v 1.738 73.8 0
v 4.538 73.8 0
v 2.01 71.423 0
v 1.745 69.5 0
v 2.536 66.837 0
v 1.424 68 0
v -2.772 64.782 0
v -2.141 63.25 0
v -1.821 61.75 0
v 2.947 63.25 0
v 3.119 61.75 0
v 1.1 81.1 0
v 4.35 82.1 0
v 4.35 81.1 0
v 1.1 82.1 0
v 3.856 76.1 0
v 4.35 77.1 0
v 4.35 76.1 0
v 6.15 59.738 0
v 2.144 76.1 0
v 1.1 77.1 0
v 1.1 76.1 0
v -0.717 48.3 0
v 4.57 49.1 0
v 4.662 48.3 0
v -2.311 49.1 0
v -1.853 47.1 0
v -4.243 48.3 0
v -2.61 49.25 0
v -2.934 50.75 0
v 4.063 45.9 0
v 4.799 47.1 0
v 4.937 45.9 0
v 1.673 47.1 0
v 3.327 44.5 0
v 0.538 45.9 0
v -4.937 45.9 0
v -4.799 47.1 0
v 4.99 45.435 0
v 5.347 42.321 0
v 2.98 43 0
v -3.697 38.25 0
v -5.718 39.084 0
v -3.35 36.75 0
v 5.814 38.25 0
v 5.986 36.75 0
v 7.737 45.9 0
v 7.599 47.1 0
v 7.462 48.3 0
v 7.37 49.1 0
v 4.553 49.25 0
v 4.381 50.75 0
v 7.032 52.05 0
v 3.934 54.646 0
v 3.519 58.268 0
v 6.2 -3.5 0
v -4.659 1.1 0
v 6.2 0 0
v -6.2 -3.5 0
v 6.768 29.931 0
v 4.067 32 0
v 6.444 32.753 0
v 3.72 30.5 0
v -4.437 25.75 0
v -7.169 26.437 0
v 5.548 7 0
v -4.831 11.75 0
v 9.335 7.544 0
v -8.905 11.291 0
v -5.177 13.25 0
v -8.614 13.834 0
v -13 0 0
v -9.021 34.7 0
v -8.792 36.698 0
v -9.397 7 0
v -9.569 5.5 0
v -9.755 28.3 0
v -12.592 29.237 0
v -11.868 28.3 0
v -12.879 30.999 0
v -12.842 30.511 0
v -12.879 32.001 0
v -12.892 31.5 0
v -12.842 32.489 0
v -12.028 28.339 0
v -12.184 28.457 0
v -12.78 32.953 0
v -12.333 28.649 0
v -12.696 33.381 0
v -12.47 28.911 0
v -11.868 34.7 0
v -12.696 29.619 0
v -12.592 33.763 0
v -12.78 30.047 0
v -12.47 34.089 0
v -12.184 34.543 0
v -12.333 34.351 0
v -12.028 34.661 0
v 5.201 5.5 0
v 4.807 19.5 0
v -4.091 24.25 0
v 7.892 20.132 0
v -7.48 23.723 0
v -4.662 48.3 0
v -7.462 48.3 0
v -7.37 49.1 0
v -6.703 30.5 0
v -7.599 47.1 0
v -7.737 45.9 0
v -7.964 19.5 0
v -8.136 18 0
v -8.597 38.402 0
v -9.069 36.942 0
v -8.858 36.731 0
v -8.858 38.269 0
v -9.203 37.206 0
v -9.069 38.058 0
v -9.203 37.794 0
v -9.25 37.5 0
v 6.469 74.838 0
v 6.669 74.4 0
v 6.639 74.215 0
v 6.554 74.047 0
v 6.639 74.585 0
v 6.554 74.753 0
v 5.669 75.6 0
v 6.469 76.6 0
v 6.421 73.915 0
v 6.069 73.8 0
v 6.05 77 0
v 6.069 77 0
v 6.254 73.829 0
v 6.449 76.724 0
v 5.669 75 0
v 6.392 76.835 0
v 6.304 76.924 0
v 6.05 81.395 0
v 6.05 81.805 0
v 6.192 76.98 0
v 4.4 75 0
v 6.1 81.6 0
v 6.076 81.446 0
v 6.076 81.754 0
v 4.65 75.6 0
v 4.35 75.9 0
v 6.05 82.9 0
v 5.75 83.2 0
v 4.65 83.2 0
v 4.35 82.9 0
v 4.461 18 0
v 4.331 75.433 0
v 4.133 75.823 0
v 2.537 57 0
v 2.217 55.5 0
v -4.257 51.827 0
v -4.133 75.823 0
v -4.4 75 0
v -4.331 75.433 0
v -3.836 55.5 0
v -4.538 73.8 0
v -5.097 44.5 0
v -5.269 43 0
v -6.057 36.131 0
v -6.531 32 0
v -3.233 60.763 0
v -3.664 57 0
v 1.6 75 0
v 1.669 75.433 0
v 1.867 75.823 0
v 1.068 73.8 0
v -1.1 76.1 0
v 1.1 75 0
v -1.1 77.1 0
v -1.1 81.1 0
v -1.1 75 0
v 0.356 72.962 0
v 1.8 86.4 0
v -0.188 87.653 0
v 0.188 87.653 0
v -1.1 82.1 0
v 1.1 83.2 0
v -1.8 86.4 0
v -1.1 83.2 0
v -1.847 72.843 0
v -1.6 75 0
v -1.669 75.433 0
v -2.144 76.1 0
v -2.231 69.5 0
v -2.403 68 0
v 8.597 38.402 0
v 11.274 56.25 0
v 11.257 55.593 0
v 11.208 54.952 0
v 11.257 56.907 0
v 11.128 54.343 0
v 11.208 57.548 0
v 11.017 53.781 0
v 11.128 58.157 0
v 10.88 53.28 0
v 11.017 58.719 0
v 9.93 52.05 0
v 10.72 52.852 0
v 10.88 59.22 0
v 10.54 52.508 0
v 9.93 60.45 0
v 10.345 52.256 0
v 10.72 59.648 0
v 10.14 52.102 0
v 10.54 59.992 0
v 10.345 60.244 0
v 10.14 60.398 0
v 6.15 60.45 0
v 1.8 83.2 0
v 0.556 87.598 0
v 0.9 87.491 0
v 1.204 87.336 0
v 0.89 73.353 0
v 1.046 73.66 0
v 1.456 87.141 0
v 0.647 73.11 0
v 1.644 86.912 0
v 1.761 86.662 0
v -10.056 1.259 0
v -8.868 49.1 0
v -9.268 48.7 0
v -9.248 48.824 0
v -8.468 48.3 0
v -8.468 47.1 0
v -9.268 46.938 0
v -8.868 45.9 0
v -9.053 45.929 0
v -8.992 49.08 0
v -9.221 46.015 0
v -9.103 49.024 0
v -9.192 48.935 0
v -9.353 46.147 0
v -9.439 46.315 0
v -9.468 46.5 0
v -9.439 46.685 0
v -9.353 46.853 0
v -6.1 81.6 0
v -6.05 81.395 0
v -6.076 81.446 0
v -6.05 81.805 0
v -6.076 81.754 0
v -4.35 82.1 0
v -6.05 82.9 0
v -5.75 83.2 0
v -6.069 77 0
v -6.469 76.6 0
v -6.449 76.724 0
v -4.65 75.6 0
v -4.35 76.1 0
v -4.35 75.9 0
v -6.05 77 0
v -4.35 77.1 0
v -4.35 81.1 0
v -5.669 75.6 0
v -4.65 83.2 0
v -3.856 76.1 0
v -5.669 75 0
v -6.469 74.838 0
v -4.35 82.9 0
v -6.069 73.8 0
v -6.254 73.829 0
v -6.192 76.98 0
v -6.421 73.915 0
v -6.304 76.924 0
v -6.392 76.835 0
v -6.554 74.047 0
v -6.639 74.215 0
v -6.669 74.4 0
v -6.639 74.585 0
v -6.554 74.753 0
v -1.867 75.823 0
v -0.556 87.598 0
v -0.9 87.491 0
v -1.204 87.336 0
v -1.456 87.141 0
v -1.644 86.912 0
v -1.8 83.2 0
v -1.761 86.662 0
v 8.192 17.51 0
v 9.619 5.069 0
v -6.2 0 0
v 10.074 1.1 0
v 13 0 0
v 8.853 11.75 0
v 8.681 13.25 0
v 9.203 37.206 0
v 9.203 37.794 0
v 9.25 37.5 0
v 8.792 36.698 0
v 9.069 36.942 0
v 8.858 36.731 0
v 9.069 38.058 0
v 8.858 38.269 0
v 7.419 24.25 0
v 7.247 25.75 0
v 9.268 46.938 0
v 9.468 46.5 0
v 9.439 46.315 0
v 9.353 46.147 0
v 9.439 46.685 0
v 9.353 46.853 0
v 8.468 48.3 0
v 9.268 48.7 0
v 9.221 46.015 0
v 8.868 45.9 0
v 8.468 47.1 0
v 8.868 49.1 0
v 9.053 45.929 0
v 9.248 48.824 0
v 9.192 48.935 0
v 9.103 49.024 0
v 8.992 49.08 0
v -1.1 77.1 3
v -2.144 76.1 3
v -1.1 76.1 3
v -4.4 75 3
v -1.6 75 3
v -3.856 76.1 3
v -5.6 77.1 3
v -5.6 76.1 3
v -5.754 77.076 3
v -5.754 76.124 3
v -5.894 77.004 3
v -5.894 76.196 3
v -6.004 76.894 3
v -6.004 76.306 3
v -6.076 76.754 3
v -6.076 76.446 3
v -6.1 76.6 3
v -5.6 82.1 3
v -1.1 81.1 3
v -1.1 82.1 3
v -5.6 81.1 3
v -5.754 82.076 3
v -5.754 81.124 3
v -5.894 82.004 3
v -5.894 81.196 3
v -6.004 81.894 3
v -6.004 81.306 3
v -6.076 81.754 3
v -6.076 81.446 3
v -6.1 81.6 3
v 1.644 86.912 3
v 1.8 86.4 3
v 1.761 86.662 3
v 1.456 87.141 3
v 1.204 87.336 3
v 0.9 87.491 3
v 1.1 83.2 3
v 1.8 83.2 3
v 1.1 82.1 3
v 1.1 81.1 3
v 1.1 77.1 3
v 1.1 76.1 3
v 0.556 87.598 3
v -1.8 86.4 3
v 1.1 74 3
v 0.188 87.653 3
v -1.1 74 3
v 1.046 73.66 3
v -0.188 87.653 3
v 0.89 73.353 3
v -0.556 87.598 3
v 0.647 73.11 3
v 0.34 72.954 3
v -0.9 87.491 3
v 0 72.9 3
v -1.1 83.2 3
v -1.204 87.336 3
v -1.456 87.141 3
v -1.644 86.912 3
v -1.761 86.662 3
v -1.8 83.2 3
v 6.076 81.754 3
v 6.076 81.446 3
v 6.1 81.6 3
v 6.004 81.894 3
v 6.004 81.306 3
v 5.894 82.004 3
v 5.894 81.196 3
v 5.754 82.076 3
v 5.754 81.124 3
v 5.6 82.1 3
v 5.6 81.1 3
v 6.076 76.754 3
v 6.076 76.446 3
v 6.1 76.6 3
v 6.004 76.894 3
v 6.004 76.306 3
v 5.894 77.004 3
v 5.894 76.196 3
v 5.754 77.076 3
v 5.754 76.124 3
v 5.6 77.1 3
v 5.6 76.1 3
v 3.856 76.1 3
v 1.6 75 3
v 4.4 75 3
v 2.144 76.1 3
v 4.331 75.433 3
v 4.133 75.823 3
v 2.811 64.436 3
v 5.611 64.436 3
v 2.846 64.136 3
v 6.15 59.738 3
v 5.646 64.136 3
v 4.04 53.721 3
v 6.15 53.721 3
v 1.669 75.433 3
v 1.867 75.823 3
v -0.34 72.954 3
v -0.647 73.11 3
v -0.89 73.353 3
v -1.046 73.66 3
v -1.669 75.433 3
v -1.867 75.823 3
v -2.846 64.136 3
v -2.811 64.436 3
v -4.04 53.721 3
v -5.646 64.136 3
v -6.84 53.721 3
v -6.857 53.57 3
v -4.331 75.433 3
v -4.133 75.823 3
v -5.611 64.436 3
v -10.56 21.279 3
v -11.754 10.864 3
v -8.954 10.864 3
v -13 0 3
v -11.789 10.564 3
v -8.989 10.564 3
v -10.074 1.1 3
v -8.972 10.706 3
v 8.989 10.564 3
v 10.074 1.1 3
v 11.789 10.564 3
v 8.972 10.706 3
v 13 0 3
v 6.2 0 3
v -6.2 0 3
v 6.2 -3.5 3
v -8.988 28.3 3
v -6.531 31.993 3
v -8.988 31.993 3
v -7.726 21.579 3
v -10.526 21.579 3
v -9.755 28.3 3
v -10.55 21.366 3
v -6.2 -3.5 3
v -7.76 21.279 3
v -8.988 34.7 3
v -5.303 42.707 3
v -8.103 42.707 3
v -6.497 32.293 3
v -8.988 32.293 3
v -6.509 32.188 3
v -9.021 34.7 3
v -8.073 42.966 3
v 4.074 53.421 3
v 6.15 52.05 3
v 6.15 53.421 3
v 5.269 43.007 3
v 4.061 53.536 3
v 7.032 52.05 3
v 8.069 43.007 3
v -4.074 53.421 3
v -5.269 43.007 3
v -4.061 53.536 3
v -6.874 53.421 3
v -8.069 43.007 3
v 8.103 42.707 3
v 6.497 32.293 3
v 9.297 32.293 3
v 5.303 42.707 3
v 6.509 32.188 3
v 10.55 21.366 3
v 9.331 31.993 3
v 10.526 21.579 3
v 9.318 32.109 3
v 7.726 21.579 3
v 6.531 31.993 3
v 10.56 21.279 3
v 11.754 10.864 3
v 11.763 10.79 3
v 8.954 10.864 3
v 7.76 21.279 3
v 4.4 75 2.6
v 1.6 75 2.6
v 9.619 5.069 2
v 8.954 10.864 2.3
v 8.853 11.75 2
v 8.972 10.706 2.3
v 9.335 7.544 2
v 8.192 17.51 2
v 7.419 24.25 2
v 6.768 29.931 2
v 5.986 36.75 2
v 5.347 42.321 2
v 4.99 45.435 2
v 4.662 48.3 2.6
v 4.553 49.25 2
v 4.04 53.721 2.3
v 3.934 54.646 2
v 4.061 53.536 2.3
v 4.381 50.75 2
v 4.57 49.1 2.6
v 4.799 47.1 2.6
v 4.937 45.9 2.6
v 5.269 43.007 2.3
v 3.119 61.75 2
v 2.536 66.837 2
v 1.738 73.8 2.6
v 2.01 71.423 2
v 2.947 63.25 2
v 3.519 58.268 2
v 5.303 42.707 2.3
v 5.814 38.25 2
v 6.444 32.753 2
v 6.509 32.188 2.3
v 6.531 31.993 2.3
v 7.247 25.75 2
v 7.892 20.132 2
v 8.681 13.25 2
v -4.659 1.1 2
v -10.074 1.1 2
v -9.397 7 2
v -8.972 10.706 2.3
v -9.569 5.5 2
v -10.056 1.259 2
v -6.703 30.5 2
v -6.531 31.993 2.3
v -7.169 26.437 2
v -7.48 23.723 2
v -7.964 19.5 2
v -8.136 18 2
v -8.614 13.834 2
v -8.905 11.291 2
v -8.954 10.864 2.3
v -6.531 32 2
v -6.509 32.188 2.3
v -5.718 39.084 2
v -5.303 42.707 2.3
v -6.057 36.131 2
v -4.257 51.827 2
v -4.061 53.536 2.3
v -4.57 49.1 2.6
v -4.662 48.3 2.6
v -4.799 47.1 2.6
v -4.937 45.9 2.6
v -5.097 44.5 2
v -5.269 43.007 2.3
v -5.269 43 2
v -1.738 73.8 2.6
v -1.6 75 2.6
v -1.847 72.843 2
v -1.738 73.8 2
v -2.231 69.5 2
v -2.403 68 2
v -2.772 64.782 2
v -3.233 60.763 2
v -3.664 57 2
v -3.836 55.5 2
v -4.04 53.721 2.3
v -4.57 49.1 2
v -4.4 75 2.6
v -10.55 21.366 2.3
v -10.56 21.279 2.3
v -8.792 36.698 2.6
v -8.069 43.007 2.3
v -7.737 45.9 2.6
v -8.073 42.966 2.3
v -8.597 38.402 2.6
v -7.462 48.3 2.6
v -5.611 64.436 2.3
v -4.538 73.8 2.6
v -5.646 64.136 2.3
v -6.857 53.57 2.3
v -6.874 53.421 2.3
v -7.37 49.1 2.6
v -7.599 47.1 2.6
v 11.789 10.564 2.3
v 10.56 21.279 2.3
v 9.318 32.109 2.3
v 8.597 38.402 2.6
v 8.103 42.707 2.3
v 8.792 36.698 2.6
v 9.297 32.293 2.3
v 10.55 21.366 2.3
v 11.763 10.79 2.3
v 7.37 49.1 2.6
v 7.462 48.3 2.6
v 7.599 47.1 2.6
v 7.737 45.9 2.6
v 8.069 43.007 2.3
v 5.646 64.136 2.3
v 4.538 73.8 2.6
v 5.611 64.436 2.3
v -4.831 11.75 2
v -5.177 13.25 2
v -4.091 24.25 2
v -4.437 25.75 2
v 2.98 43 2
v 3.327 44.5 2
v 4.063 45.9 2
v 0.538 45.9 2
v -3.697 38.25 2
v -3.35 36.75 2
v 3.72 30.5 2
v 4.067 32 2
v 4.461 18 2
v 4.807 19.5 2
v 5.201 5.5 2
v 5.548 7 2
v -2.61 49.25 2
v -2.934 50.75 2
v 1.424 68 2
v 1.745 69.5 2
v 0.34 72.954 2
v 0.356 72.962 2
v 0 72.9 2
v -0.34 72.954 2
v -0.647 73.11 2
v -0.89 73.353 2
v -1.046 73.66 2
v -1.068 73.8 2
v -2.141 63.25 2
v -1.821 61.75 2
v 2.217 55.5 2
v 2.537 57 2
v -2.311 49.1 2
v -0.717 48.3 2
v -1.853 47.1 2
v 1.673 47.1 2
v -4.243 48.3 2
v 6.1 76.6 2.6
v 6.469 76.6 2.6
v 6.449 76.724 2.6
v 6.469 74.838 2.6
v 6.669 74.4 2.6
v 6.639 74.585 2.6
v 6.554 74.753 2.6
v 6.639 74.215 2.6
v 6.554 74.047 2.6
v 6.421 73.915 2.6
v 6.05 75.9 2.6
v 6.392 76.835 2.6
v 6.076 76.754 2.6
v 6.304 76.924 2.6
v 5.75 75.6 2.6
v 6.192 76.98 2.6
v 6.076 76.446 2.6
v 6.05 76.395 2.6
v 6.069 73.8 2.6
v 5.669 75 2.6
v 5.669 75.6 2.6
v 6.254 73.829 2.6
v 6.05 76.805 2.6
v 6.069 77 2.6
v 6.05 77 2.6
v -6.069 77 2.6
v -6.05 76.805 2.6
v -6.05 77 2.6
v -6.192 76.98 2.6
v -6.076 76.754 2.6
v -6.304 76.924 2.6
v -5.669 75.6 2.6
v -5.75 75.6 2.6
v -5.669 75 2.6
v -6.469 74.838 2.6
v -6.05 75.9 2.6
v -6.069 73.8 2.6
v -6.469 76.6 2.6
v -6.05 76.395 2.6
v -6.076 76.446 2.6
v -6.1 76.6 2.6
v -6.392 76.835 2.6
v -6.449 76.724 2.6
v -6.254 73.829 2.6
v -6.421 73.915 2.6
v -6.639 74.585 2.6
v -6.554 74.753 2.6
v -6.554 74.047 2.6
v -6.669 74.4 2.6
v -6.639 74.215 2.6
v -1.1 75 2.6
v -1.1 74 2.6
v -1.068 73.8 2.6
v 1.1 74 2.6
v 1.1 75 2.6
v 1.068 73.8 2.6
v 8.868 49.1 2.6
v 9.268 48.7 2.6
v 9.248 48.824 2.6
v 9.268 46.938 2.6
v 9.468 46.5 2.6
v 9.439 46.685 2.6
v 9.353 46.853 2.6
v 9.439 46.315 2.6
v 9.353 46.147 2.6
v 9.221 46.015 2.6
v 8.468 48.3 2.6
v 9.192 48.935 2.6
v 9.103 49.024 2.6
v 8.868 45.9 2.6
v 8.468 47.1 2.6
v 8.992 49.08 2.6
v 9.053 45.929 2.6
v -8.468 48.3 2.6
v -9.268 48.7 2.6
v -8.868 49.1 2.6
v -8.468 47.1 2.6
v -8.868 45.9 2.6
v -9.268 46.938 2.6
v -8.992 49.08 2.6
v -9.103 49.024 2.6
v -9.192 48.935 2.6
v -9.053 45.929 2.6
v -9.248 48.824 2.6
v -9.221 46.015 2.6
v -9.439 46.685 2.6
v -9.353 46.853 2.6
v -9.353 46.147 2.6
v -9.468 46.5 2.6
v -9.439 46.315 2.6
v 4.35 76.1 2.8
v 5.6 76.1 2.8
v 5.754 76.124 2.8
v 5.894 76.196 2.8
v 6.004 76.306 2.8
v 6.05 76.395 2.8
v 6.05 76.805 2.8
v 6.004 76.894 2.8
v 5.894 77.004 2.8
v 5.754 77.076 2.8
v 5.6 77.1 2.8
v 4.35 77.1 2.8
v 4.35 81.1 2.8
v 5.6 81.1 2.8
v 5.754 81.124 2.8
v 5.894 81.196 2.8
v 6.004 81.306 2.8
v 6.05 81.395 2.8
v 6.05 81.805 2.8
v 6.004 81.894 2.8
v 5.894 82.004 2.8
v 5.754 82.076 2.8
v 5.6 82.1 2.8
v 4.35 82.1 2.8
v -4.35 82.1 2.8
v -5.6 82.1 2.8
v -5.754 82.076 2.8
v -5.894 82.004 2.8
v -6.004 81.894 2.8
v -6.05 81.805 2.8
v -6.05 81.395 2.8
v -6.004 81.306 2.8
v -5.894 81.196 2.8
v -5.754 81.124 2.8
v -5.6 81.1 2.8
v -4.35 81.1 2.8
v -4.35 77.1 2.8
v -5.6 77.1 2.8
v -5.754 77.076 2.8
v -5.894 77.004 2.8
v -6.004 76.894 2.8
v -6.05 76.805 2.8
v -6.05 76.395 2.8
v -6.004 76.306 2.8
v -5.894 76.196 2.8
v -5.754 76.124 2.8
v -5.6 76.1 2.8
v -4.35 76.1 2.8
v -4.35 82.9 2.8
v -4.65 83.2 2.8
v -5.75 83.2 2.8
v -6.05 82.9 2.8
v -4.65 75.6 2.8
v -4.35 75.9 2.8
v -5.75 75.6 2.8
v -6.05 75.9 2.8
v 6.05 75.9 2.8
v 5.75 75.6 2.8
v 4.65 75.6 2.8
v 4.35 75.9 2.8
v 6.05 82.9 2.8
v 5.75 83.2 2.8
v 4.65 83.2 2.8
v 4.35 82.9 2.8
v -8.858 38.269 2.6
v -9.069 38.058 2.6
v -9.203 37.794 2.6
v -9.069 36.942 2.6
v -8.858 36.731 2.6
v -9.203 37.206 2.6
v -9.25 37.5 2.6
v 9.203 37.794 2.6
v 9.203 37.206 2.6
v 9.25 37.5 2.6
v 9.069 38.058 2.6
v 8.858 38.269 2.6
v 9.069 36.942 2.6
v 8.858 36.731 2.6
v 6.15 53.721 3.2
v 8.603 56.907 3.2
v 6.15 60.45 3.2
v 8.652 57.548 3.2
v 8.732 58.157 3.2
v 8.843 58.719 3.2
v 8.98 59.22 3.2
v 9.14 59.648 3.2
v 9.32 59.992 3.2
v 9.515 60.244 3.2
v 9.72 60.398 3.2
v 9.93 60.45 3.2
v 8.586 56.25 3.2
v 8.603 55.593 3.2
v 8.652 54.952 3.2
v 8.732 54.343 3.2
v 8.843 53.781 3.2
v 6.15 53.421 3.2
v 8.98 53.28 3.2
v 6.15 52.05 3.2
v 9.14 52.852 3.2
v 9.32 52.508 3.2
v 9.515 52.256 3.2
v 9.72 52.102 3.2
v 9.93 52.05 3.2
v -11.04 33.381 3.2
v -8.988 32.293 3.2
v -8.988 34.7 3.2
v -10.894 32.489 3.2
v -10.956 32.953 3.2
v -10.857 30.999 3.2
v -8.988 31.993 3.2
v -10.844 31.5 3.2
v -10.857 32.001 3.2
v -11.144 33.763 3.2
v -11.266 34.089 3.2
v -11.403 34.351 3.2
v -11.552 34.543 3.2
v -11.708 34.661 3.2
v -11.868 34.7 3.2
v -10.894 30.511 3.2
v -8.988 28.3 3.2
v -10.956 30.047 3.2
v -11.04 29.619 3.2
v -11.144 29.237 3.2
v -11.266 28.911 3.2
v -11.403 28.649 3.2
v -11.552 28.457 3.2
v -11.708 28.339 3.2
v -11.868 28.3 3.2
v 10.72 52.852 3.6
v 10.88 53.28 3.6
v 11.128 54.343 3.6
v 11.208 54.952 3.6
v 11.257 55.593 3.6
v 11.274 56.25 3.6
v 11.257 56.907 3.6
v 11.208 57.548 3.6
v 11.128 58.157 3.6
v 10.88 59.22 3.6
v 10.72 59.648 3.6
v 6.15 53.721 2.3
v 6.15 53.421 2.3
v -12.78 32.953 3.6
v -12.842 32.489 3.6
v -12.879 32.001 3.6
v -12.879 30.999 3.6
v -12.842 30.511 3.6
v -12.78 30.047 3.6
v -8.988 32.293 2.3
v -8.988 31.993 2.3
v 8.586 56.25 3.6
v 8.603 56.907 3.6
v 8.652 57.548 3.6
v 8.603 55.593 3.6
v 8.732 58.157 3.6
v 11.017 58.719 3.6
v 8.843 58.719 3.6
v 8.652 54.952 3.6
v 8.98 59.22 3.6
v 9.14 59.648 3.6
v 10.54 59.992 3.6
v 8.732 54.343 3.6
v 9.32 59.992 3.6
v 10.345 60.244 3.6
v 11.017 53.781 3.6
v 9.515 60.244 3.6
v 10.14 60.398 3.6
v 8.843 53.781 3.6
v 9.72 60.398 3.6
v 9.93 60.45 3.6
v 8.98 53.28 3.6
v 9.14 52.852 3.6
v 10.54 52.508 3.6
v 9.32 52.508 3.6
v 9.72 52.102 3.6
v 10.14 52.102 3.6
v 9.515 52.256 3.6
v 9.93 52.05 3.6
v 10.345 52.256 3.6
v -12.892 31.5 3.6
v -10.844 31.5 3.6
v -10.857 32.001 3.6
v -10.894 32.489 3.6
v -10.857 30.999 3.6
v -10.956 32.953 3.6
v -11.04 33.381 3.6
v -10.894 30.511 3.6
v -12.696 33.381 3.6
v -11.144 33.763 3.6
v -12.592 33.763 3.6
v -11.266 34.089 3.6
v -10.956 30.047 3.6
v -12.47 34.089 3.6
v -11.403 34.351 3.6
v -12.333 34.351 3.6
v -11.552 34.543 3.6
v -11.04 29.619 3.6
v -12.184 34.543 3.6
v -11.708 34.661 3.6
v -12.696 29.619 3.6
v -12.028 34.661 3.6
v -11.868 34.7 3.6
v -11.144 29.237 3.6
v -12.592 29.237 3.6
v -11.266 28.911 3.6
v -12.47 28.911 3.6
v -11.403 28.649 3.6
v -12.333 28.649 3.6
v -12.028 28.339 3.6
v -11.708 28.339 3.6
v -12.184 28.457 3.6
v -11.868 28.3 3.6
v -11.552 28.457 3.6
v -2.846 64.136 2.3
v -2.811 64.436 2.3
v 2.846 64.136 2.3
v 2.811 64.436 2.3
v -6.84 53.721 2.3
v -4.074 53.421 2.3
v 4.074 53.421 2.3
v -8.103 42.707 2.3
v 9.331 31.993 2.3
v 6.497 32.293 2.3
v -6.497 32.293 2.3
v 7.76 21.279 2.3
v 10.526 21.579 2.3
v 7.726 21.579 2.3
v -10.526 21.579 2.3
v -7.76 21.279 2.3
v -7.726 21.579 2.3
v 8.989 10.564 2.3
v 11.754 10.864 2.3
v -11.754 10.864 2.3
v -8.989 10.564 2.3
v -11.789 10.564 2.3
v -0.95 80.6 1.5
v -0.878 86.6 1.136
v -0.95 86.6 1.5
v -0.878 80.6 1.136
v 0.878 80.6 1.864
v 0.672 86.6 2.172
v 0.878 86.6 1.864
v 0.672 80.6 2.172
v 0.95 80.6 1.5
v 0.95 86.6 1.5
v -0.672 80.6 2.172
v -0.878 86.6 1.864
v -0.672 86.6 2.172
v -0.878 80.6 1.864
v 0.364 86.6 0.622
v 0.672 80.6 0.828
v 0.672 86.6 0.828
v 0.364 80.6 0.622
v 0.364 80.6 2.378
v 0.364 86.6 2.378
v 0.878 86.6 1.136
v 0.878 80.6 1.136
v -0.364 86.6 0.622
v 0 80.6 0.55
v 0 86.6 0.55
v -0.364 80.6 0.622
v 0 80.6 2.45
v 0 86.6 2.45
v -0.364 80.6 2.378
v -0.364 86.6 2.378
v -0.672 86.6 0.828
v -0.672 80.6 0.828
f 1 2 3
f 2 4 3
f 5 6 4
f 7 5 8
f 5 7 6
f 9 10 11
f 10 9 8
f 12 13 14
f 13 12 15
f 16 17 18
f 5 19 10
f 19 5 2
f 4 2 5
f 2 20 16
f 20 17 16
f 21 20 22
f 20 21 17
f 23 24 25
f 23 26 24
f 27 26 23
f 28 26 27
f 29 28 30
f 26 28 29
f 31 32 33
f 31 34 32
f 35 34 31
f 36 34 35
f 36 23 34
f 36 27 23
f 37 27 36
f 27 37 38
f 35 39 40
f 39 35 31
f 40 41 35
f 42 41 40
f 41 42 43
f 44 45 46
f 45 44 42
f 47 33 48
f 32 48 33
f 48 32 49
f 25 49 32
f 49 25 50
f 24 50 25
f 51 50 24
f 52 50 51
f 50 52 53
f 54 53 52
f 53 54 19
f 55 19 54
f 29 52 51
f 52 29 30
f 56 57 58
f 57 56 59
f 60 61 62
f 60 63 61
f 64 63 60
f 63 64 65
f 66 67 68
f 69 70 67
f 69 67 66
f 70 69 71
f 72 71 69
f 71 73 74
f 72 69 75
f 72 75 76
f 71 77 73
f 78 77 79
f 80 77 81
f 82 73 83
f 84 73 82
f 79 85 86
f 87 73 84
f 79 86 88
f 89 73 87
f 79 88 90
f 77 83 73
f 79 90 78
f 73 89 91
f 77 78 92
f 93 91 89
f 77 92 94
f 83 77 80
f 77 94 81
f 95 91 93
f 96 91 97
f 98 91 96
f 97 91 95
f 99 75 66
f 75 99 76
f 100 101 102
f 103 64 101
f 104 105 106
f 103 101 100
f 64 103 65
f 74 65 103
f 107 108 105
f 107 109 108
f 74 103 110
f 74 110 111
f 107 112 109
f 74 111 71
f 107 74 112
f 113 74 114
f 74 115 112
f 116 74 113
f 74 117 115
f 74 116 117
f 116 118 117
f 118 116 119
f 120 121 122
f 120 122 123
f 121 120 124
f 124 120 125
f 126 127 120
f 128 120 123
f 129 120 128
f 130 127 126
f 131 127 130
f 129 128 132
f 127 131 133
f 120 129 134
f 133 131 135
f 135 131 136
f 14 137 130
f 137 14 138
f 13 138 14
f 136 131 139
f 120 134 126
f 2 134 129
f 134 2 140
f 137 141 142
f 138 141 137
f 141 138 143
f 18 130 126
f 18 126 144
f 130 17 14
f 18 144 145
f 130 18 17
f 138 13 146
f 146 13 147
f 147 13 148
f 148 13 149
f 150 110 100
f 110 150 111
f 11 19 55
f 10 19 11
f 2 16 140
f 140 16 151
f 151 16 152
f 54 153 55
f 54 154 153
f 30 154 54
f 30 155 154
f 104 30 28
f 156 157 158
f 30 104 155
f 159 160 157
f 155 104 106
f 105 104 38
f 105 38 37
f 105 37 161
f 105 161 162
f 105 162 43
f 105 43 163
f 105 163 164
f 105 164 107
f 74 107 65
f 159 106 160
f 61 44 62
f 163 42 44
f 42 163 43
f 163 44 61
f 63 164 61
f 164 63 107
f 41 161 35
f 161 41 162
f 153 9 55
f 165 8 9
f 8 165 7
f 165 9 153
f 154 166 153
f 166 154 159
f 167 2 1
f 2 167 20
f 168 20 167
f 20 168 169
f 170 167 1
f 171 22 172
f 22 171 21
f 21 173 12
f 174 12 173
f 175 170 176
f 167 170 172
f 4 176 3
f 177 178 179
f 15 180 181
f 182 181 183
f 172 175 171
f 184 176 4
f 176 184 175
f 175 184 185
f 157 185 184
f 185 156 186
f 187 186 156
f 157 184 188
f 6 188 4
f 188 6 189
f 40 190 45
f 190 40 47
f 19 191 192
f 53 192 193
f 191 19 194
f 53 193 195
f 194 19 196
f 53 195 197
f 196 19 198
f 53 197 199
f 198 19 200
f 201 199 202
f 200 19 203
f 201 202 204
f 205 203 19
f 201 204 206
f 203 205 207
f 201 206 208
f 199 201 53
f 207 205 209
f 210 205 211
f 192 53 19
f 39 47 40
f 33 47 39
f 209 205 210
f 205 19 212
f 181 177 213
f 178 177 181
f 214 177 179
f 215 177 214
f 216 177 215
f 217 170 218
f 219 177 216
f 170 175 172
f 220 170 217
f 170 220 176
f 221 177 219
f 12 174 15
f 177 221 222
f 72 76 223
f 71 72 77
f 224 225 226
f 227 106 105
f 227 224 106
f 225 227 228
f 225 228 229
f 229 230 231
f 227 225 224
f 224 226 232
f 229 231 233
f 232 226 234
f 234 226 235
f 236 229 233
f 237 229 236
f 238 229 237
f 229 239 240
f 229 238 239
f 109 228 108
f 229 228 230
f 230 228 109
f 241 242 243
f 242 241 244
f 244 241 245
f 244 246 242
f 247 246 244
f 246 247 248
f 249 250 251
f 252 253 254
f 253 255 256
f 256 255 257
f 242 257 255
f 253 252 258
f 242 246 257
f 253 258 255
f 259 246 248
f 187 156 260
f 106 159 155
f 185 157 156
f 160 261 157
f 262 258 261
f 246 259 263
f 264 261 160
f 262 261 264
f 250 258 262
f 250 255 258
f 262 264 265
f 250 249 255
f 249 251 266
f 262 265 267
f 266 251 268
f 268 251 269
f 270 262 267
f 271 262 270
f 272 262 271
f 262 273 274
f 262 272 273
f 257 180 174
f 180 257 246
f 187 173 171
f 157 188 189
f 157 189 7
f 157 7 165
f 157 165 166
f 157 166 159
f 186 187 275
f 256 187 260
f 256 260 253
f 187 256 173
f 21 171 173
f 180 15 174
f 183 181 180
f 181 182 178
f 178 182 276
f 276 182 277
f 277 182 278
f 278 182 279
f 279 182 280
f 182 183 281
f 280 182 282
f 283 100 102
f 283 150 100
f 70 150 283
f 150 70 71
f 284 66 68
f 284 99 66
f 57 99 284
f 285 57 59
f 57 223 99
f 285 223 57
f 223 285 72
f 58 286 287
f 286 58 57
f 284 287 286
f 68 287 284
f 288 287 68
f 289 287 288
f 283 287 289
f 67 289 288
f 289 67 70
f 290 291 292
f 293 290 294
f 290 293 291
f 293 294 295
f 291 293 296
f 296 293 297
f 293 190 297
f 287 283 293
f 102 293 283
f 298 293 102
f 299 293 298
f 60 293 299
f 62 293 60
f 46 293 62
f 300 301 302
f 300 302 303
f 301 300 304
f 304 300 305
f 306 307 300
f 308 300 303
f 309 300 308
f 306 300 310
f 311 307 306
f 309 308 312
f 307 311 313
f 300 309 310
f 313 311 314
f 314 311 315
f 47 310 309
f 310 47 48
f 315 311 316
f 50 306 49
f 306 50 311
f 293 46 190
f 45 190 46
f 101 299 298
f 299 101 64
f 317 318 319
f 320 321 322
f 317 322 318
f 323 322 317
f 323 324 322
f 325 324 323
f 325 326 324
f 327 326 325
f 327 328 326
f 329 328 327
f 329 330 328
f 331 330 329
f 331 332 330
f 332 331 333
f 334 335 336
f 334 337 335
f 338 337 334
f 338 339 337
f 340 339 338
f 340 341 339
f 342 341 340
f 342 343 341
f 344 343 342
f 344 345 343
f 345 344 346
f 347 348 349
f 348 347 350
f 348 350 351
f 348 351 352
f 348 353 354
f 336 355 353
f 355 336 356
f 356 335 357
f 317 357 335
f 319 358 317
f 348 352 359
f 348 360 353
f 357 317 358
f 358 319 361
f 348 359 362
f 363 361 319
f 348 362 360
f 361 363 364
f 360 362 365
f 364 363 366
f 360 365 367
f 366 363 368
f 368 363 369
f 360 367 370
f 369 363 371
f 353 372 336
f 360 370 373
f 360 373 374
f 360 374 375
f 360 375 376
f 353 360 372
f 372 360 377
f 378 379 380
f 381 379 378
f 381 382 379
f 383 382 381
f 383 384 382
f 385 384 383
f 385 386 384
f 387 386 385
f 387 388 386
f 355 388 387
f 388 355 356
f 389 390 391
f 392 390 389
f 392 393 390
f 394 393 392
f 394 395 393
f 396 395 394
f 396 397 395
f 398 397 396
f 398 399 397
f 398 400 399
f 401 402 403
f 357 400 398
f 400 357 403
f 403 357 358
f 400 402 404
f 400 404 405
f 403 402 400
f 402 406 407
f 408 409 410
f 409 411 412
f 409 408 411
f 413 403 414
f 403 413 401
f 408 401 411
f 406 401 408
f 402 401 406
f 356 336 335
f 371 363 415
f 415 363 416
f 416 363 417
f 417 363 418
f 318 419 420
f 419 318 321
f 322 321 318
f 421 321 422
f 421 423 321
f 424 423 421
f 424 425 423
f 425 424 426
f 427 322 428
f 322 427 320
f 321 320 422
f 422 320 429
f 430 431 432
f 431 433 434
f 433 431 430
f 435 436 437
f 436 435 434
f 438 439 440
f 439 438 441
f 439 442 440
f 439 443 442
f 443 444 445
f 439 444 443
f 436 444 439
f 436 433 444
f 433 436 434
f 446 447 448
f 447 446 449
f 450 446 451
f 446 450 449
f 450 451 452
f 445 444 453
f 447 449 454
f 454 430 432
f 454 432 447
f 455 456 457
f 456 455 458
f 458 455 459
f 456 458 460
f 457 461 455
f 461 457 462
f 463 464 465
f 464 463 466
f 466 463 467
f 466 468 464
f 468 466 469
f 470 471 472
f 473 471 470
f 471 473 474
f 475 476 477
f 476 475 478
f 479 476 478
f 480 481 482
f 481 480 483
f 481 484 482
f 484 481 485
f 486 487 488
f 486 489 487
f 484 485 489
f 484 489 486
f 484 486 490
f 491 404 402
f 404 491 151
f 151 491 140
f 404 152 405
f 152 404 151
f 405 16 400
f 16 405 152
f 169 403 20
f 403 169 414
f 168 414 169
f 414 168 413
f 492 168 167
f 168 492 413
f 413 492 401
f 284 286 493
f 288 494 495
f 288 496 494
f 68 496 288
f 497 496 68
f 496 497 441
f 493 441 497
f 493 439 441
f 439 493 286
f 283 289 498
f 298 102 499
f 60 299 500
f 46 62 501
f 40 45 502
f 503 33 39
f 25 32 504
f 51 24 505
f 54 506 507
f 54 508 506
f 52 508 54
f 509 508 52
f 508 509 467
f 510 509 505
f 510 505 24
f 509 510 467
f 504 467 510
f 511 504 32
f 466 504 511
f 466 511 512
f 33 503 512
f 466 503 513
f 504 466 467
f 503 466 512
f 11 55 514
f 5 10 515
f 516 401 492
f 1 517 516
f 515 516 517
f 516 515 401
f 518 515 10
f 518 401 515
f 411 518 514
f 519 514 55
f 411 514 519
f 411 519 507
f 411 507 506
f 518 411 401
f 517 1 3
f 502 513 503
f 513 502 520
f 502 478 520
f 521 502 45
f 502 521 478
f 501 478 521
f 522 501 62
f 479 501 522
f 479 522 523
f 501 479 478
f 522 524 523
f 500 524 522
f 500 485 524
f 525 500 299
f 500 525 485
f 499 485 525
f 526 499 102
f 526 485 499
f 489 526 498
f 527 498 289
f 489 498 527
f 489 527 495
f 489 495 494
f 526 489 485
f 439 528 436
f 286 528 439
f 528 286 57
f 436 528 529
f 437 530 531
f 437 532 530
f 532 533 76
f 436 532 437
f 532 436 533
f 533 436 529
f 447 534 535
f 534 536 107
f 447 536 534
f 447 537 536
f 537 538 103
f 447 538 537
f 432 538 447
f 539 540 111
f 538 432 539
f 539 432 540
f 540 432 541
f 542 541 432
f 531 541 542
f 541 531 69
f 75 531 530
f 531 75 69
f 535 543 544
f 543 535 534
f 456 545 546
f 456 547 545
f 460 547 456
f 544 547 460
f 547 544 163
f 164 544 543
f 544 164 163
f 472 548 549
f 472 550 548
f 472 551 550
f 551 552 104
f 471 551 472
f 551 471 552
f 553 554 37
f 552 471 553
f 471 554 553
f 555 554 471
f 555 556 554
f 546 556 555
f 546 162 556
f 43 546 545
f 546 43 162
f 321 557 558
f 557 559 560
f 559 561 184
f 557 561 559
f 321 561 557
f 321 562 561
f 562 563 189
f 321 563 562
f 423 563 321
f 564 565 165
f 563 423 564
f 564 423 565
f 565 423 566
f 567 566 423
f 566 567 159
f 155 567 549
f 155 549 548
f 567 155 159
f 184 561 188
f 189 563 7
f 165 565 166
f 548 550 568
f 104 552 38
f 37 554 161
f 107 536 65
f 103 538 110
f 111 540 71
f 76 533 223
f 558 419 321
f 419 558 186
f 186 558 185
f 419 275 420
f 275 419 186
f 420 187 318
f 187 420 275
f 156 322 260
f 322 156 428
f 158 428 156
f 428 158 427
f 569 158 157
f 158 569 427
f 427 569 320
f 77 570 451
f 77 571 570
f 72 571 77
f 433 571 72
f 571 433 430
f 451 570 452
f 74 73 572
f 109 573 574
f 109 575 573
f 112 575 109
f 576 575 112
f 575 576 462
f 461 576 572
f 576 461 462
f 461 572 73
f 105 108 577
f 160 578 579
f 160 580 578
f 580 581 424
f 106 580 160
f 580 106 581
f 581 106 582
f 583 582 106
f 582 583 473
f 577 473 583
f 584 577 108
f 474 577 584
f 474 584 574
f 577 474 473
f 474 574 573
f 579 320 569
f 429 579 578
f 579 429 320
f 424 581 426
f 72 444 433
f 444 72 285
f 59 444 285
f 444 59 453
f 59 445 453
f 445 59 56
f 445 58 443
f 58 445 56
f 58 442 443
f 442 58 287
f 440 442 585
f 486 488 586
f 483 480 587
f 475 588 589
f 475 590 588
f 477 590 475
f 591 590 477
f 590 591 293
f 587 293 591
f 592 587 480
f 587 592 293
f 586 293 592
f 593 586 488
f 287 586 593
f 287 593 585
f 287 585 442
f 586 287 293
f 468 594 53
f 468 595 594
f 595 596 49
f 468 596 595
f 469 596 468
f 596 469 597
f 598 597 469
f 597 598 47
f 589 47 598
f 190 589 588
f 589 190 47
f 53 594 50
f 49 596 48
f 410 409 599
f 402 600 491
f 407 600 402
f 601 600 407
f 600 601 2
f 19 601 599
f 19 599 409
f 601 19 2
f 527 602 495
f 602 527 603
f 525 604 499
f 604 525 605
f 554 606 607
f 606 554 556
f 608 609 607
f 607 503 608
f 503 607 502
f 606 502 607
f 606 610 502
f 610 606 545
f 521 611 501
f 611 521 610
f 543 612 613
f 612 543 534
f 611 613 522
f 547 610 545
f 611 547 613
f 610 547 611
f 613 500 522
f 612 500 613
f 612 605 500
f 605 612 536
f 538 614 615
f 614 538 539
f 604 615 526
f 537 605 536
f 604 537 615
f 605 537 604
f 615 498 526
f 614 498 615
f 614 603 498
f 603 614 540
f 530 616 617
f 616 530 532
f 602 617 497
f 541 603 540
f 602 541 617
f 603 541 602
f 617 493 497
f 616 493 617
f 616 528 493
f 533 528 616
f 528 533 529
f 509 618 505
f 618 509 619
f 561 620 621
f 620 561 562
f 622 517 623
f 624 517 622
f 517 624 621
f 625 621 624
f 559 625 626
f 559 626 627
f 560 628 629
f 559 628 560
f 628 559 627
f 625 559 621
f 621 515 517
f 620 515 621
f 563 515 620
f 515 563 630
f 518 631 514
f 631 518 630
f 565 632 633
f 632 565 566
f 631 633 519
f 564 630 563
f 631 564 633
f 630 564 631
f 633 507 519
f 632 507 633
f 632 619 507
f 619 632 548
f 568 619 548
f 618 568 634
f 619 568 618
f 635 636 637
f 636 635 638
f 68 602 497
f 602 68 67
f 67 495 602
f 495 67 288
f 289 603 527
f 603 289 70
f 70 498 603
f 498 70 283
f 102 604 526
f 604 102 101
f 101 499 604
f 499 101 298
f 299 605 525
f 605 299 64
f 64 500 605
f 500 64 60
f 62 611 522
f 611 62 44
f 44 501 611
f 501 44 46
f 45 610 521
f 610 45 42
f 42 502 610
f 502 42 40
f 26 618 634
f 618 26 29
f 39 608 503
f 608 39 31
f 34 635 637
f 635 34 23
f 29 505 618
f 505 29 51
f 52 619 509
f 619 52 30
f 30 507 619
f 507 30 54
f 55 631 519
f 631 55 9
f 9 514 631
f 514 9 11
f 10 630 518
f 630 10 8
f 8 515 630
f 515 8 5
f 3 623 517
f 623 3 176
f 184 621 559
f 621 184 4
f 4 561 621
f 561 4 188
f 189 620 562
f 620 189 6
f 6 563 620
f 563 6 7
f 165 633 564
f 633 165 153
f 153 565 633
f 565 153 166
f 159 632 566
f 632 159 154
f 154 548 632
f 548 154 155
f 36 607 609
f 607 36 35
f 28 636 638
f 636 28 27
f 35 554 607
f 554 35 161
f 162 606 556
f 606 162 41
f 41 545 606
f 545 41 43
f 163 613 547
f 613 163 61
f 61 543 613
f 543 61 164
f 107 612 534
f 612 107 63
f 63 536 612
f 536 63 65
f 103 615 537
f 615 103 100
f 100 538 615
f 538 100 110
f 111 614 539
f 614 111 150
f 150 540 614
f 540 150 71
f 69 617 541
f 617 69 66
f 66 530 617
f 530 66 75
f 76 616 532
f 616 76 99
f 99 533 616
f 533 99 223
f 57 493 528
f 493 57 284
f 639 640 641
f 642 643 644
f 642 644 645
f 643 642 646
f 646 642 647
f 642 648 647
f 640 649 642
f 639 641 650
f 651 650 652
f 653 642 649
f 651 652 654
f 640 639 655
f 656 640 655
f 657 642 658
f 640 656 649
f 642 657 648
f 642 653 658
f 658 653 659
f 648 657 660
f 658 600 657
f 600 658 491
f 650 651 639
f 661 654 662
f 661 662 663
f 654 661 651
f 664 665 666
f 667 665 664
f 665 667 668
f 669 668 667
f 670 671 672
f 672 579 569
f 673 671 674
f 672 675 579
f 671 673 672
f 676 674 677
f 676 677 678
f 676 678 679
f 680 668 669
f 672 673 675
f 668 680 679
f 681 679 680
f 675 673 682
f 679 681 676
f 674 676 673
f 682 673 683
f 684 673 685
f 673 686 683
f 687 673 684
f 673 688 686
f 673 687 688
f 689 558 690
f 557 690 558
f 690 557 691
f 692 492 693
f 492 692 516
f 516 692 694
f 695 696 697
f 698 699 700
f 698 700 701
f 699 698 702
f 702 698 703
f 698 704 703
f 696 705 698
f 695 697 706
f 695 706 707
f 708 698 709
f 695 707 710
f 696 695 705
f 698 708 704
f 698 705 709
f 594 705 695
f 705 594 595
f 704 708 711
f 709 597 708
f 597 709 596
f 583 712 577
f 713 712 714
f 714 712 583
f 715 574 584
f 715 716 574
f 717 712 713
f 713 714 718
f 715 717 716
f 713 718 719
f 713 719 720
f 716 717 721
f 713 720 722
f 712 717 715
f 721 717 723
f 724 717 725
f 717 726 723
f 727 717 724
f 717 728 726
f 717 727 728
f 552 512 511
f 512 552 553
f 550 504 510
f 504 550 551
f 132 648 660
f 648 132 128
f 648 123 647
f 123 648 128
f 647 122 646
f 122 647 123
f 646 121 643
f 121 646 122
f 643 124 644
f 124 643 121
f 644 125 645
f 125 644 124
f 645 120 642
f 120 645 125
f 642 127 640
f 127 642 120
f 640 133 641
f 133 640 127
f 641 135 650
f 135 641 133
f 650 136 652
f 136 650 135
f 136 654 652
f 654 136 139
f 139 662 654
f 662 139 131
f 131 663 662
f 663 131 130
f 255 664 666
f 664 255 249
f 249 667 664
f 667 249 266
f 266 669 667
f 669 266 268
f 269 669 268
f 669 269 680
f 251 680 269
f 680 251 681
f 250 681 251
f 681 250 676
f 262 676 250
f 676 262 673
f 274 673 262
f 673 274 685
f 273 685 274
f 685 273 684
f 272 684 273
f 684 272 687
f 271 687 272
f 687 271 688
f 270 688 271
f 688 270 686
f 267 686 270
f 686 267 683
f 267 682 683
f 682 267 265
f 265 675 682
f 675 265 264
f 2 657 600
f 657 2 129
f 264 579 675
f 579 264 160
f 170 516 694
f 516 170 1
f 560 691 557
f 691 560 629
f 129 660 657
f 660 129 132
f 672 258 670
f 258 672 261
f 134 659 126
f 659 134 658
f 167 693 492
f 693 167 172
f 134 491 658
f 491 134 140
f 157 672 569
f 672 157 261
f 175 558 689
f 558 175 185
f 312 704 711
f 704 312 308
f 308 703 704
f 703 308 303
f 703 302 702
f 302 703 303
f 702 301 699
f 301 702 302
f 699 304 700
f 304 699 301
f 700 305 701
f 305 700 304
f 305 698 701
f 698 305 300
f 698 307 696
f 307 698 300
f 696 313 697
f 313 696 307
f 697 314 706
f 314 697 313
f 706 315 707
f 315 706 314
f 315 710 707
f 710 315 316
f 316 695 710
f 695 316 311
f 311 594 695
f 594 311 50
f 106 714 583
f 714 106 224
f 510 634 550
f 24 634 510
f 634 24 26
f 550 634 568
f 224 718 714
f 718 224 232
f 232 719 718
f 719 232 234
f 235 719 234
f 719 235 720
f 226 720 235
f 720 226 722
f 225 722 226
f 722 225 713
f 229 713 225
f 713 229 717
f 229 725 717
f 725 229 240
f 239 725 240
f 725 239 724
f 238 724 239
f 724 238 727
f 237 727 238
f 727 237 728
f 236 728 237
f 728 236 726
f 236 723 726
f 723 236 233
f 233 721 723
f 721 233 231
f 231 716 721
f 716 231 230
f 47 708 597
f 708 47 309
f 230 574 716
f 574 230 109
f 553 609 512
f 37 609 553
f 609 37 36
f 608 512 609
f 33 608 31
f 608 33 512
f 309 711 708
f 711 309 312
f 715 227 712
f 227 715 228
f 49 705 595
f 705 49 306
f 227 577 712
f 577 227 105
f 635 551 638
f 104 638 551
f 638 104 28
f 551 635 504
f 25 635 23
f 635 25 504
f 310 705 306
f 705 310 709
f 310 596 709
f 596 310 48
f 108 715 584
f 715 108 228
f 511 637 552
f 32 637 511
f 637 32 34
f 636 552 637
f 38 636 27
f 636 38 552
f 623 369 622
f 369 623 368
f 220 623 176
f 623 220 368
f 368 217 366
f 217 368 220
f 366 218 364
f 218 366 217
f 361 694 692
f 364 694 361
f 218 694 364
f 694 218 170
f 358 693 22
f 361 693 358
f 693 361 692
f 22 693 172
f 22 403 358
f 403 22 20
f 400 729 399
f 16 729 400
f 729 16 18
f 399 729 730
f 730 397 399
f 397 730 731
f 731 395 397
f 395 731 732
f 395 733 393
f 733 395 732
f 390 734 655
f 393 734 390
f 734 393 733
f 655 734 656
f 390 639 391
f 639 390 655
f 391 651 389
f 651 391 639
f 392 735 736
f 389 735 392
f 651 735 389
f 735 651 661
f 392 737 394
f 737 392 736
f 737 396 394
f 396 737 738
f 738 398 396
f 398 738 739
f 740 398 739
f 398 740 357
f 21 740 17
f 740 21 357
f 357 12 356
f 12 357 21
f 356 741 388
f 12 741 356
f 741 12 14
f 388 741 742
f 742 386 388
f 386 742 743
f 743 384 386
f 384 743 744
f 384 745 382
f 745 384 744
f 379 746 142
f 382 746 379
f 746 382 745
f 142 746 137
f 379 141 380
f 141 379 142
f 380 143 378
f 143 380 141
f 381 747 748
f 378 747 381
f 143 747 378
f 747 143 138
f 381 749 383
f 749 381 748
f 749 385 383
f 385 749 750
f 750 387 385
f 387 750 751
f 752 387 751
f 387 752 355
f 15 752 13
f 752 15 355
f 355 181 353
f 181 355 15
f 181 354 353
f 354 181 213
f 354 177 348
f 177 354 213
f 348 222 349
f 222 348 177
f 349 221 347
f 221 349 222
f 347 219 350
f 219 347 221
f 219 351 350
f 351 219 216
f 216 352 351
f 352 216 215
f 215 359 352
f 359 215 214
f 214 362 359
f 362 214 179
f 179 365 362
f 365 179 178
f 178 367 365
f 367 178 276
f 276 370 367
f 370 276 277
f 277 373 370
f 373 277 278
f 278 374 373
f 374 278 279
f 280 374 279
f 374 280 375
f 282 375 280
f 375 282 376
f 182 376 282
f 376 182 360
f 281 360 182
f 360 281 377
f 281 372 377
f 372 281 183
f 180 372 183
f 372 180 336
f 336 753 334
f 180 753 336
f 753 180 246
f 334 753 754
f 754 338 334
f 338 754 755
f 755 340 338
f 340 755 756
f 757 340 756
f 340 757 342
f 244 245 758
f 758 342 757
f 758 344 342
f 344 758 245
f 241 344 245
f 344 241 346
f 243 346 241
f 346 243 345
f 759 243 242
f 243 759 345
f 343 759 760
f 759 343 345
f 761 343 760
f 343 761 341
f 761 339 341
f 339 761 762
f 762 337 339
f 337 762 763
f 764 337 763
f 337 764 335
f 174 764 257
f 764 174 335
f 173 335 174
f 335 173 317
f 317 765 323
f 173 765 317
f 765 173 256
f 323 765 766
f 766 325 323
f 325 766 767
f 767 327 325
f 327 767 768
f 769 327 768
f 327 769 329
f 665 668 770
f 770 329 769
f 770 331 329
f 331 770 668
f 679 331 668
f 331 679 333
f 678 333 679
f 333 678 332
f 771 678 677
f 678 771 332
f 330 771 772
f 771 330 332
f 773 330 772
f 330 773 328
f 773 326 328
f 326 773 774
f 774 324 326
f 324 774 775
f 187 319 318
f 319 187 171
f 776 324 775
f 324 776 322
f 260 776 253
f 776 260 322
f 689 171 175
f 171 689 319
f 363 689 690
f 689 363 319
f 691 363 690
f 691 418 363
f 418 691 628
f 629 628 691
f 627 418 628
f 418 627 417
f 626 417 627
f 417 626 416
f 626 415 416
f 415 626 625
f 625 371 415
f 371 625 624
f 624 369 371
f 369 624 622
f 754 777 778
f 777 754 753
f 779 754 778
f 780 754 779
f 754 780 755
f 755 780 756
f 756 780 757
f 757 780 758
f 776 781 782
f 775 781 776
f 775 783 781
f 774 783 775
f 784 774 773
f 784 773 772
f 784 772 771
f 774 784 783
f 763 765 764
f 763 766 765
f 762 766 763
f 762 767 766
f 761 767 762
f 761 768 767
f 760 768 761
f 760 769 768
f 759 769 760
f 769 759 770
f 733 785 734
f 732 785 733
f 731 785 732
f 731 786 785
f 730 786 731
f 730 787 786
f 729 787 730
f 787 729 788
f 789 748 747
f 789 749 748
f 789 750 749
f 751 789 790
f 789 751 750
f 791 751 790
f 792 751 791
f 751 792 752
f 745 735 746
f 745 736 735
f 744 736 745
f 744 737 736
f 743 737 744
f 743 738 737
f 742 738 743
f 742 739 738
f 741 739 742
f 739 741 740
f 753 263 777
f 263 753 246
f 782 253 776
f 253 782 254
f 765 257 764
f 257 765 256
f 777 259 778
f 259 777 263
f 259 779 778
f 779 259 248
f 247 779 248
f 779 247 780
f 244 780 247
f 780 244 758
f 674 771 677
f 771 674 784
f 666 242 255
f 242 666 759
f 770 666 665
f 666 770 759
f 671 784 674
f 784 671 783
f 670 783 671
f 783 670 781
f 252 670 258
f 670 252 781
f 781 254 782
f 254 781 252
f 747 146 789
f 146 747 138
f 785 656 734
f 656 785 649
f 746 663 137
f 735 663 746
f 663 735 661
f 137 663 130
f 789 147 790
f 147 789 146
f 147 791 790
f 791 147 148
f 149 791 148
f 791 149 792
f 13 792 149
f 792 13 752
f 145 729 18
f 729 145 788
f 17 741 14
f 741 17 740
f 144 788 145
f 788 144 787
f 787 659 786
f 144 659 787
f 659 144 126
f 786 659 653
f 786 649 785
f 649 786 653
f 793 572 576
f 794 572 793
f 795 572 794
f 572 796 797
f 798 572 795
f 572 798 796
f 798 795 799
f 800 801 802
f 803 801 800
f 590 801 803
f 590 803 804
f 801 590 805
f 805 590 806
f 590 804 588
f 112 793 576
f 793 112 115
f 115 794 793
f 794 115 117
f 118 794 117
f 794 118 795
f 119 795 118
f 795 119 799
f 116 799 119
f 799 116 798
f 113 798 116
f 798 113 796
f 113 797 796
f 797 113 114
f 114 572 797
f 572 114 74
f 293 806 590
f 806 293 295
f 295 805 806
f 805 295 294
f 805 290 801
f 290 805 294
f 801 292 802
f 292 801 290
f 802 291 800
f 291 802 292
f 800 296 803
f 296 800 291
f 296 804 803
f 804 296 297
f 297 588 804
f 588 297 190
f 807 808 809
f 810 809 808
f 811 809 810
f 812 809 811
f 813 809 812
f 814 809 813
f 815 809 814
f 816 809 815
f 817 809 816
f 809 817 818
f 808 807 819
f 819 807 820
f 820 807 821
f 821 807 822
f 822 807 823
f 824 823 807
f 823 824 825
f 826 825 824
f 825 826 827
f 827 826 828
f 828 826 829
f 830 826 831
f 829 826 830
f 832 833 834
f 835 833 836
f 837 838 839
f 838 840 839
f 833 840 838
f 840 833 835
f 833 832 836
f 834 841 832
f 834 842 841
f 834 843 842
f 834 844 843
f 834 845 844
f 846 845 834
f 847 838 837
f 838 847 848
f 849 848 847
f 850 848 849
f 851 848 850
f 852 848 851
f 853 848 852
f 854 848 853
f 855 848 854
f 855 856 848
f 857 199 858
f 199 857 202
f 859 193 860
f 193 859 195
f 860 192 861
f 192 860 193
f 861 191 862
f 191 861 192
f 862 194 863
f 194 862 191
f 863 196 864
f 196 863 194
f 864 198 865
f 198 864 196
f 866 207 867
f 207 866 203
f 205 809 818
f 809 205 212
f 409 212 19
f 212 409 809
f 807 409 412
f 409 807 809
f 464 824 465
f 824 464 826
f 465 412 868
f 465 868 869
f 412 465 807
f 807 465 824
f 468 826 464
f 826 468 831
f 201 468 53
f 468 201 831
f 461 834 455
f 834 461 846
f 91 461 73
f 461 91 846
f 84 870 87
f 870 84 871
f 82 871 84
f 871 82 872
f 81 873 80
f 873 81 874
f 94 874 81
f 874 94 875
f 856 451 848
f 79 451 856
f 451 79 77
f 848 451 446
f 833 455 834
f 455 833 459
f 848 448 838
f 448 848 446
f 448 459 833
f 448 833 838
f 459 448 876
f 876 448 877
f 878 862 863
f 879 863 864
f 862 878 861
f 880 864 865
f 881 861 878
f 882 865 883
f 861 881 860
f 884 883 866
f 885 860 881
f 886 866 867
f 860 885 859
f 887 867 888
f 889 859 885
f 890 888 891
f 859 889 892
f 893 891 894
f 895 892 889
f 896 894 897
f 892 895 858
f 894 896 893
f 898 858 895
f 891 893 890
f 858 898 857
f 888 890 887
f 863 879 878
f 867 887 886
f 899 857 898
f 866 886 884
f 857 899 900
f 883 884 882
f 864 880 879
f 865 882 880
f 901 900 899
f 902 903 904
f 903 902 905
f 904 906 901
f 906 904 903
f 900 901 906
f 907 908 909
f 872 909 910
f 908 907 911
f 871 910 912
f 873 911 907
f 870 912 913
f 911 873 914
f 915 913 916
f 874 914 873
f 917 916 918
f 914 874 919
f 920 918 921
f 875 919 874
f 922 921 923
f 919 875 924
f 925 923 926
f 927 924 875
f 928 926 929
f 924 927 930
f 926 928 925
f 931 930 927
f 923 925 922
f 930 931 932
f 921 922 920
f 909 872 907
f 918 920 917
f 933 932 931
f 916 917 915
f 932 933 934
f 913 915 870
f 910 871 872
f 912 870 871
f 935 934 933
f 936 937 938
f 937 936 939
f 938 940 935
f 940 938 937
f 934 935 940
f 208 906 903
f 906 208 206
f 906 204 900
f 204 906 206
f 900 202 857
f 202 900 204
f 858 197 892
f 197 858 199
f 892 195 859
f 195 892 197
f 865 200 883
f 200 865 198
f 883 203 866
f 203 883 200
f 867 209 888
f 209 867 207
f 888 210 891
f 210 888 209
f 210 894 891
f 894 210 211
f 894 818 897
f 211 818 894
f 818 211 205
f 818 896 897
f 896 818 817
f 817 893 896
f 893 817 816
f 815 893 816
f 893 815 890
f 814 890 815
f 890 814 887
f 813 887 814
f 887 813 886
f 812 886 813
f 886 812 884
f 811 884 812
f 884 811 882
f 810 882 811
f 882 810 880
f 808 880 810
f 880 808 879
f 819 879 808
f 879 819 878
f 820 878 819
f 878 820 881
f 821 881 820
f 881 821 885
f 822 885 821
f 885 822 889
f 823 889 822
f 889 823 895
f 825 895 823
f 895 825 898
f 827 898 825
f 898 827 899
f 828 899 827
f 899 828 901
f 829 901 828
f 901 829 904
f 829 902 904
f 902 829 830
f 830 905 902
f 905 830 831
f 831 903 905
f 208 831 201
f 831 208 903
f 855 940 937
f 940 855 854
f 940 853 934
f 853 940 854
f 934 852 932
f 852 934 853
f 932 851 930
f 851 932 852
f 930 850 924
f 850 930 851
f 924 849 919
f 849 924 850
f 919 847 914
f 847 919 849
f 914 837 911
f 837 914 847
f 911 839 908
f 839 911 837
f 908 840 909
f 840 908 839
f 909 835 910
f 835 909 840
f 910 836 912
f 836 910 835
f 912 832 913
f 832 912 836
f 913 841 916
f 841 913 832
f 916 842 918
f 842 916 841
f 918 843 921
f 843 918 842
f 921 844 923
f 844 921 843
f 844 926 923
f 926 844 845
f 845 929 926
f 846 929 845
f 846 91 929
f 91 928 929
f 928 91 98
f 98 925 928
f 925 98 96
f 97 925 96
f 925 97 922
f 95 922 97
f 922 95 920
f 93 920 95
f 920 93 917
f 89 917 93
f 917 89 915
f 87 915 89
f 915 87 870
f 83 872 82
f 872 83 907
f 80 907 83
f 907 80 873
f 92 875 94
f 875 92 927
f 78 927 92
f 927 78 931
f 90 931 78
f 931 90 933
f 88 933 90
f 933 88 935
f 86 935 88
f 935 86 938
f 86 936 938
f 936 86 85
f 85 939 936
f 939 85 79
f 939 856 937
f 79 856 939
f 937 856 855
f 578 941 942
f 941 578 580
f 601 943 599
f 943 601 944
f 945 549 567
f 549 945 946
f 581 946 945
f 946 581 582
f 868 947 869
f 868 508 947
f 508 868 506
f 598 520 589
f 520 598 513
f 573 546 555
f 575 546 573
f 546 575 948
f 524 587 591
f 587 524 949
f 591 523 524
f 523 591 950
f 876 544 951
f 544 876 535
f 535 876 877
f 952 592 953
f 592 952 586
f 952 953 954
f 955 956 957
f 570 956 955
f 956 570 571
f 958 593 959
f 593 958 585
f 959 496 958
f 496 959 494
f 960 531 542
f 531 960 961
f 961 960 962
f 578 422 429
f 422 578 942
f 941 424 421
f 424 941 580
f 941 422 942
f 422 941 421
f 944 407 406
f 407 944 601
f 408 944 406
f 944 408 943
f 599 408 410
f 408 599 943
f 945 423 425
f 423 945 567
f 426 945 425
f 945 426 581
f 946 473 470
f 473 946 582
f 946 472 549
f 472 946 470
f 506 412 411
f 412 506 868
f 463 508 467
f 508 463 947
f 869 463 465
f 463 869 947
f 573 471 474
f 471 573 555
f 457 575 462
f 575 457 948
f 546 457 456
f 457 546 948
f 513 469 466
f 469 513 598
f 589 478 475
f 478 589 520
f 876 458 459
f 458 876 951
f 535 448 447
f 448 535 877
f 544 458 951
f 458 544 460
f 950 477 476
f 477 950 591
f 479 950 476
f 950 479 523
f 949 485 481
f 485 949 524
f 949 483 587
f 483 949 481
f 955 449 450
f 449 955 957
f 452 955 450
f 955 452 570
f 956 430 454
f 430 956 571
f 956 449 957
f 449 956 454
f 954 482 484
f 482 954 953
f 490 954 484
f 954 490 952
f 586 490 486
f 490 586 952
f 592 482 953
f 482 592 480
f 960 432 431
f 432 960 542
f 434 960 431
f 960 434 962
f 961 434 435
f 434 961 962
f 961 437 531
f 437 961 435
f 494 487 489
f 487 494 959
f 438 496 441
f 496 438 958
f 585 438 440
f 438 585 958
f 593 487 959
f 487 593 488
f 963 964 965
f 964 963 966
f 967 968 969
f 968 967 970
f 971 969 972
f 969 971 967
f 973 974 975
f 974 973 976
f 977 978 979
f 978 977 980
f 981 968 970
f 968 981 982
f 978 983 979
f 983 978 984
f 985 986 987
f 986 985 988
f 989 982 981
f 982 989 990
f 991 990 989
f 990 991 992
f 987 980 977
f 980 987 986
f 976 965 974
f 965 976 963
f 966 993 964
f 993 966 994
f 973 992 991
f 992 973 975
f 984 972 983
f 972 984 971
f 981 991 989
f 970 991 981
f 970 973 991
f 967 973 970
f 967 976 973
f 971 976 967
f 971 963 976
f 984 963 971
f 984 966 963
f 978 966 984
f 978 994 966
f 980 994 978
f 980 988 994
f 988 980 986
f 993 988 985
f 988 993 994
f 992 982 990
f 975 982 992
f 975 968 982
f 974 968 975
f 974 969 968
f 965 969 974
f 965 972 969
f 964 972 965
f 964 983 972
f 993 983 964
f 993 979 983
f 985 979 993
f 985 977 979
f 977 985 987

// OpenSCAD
// Radio tower topper for the radar station roof. Prints flat on its back, no supports.
//   part = "tower" : the tower. Print flat (as exported), 0.12-0.16 mm layers. Paint the bands
//                    red and white in the slicer (grooves mark the band edges), dishes white,
//                    lights red. Push a short piece of 1.75 mm filament into the top hole (whip).
//   part = "foot"  : glue to the roof behind the rooftop unit, left of the button slot; the
//                    tower's tab sits in its slot.
// 2D coordinates: x across, y up, y = 0 at the top of the foot.

tw_h = 75;            // lattice height
tw_b = 11.6;          // half-width at the base (the tab below stays 12.4 wide for the foot's slot)
tw_t = 3.0;           // half-width at the top
bays = 12;
TAB_W = 12.4;         // tab that sits in the foot's 12.8 mm slot
bay  = tw_h / bays;
function hw(y) = tw_b - (tw_b - tw_t) * y / tw_h;

// relief heights (mm above the bed)
H_LEG = 3.0;  H_BRACE = 2.0;  H_DECK = 2.6;  H_DISH = 3.2;  H_RADOME = 3.6;  H_PANEL = 2.8;

module bar(a, b, w) hull() { translate(a) circle(d = w, $fn = 20); translate(b) circle(d = w, $fn = 20); }

// ---------- structure ----------
module above_base() intersection() { children(); translate([-30, 0]) square([60, 200]); }   // nothing wider than the tab below y = 0
module legs2d() {
    above_base() {
        bar([-hw(0), 0], [-hw(tw_h), tw_h], 2.8);
        bar([ hw(0), 0], [ hw(tw_h), tw_h], 2.8);
    }
    translate([-tw_b - 0.6, 0]) square([2 * tw_b + 1.2, 1.1]);              // base plate
    translate([-TAB_W / 2, -3.5]) square([TAB_W, 3.51]);                    // tab for the foot slot
}
module braces2d() above_base() {                                             // Warren (zigzag) bracing
    for (k = [1 : bays - 1]) bar([-hw(k * bay), k * bay], [hw(k * bay), k * bay], 1.5);
    for (k = [0 : bays - 1]) {
        y0 = k * bay;  y1 = y0 + bay;
        if (k % 2 == 0) bar([-hw(y0), y0], [hw(y1), y1], 1.6);
        else            bar([ hw(y0), y0], [-hw(y1), y1], 1.6);
    }
}
module platform2d(y, ext) {                                                  // deck with a railing
    bar([-hw(y) - ext, y], [hw(y) + ext, y], 1.2);
    bar([-hw(y) - ext, y + 2.2], [hw(y) + ext, y + 2.2], 0.8);
    for (s = [-1, 1]) bar([s * (hw(y) + ext), y], [s * (hw(y) + ext), y + 2.2], 0.8);
}
module mast2d() {                                                            // antenna pipe above the lattice
    bar([0, tw_h - 1], [0, tw_h + 9], 2.2);
    translate([-1.8, tw_h + 8.2]) square([3.6, 3.2]);                        // beacon housing (whip hole)
    translate([0, tw_h + 11.4]) scale([1, 0.7]) circle(r = 1.8, $fn = 30);   // beacon dome
}
module arms2d() for (y = [tw_h + 1.6, tw_h + 6.6]) bar([-5.6, y], [5.6, y], 1.0);
module panels2d() for (s = [-1, 1]) translate([s * 5.2 - 0.85, tw_h + 0.6]) offset(r = 0.3) offset(delta = -0.3) square([1.7, 7.6]);

// ---------- microwave dishes (side view: drum with a domed radome) ----------
module dish2d(y, side, r) {        // side = +1 faces right, -1 faces left; r = dish half-height
    x0 = side * (hw(y) + 1.0);
    mirror([side < 0 ? 1 : 0, 0]) translate([abs(x0), 0]) {
        translate([0, y - r]) square([r * 0.9, 2 * r]);                     // drum body
        translate([r * 0.9, y]) scale([0.32, 1]) circle(r = r, $fn = 40);  // radome
    }
}
module dish_mount2d(y, side, r) bar([side * hw(y), y], [side * (hw(y) + 1.4), y], 1.4);
module radome2d(y, side, r) {
    x0 = side * (hw(y) + 1.0);
    mirror([side < 0 ? 1 : 0, 0]) translate([abs(x0) + r * 0.9, y]) scale([0.32, 1]) circle(r = r, $fn = 40);
}
D1 = [0.75 * tw_h, 1, 4.2];      // y, side, half-height
D2 = [0.42 * tw_h, -1, 3.2];

// ---------- aviation lights ----------
module lights2d() for (s = [-1, 1]) translate([s * (hw(tw_h / 2) + 1.0), tw_h / 2]) circle(r = 0.95, $fn = 20);

// ---------- band lines (red/white) ----------
nb = 7;  band = tw_h / nb;

module tower_part() {
    difference() {
        union() {
            linear_extrude(H_LEG) legs2d();
            linear_extrude(H_BRACE) braces2d();
            linear_extrude(H_DECK) { platform2d(0.62 * tw_h, 2.6); platform2d(tw_h - 0.6, 3.0); }
            linear_extrude(H_LEG) { mast2d(); arms2d(); }
            linear_extrude(H_PANEL) panels2d();
            linear_extrude(H_DECK) { dish_mount2d(D1[0], D1[1], D1[2]); dish_mount2d(D2[0], D2[1], D2[2]); lights2d(); }
            linear_extrude(H_DISH) { dish2d(D1[0], D1[1], D1[2]); dish2d(D2[0], D2[1], D2[2]); }
            linear_extrude(H_RADOME) { radome2d(D1[0], D1[1], D1[2]); radome2d(D2[0], D2[1], D2[2]); }
        }
        translate([0, 0, H_BRACE + 0.3]) linear_extrude(2) intersection() {                        // band lines, legs only
            difference() { legs2d(); dish2d(D1[0], D1[1], D1[2]); dish2d(D2[0], D2[1], D2[2]); lights2d(); }
            for (i = [1 : nb - 1]) translate([-12, i * band - 0.15]) square([24, 0.3]);
        }
        translate([0, tw_h + 11.6, H_LEG / 2]) rotate([90, 0, 0]) cylinder(d = 1.9, h = 6, $fn = 16);      // whip hole
    }
}

module tower_foot() difference() { cube([13.6, 6, 4.5]); translate([0.4, 1.3, 1]) cube([12.8, 3.4, 4]); }
module ape_foot() tower_foot();            // name kept for older preview files

part = "tower";
if (part == "tower") tower_part();
else if (part == "foot") tower_foot();
else if (part == "flat2d") {
    color("white") { legs2d(); braces2d(); }
    for (i = [0 : 2 : nb - 1]) color("firebrick") translate([0, 0, 0.05])
        intersection() { union() { legs2d(); braces2d(); } translate([-12, i * band]) square([24, band]); }
    color("gainsboro") translate([0, 0, 0.1]) { platform2d(0.62 * tw_h, 2.6); platform2d(tw_h - 0.6, 3.0); mast2d(); arms2d(); }
    color("lightgray") translate([0, 0, 0.15]) { panels2d(); dish_mount2d(D1[0], D1[1], D1[2]); dish_mount2d(D2[0], D2[1], D2[2]); }
    color("white") translate([0, 0, 0.2]) { dish2d(D1[0], D1[1], D1[2]); dish2d(D2[0], D2[1], D2[2]); }
    color("silver") translate([0, 0, 0.25]) { radome2d(D1[0], D1[1], D1[2]); radome2d(D2[0], D2[1], D2[2]); }
    color("red") translate([0, 0, 0.3]) { lights2d(); translate([0, tw_h + 11.4]) scale([1, 0.7]) circle(r = 1.8, $fn = 30); }
}
